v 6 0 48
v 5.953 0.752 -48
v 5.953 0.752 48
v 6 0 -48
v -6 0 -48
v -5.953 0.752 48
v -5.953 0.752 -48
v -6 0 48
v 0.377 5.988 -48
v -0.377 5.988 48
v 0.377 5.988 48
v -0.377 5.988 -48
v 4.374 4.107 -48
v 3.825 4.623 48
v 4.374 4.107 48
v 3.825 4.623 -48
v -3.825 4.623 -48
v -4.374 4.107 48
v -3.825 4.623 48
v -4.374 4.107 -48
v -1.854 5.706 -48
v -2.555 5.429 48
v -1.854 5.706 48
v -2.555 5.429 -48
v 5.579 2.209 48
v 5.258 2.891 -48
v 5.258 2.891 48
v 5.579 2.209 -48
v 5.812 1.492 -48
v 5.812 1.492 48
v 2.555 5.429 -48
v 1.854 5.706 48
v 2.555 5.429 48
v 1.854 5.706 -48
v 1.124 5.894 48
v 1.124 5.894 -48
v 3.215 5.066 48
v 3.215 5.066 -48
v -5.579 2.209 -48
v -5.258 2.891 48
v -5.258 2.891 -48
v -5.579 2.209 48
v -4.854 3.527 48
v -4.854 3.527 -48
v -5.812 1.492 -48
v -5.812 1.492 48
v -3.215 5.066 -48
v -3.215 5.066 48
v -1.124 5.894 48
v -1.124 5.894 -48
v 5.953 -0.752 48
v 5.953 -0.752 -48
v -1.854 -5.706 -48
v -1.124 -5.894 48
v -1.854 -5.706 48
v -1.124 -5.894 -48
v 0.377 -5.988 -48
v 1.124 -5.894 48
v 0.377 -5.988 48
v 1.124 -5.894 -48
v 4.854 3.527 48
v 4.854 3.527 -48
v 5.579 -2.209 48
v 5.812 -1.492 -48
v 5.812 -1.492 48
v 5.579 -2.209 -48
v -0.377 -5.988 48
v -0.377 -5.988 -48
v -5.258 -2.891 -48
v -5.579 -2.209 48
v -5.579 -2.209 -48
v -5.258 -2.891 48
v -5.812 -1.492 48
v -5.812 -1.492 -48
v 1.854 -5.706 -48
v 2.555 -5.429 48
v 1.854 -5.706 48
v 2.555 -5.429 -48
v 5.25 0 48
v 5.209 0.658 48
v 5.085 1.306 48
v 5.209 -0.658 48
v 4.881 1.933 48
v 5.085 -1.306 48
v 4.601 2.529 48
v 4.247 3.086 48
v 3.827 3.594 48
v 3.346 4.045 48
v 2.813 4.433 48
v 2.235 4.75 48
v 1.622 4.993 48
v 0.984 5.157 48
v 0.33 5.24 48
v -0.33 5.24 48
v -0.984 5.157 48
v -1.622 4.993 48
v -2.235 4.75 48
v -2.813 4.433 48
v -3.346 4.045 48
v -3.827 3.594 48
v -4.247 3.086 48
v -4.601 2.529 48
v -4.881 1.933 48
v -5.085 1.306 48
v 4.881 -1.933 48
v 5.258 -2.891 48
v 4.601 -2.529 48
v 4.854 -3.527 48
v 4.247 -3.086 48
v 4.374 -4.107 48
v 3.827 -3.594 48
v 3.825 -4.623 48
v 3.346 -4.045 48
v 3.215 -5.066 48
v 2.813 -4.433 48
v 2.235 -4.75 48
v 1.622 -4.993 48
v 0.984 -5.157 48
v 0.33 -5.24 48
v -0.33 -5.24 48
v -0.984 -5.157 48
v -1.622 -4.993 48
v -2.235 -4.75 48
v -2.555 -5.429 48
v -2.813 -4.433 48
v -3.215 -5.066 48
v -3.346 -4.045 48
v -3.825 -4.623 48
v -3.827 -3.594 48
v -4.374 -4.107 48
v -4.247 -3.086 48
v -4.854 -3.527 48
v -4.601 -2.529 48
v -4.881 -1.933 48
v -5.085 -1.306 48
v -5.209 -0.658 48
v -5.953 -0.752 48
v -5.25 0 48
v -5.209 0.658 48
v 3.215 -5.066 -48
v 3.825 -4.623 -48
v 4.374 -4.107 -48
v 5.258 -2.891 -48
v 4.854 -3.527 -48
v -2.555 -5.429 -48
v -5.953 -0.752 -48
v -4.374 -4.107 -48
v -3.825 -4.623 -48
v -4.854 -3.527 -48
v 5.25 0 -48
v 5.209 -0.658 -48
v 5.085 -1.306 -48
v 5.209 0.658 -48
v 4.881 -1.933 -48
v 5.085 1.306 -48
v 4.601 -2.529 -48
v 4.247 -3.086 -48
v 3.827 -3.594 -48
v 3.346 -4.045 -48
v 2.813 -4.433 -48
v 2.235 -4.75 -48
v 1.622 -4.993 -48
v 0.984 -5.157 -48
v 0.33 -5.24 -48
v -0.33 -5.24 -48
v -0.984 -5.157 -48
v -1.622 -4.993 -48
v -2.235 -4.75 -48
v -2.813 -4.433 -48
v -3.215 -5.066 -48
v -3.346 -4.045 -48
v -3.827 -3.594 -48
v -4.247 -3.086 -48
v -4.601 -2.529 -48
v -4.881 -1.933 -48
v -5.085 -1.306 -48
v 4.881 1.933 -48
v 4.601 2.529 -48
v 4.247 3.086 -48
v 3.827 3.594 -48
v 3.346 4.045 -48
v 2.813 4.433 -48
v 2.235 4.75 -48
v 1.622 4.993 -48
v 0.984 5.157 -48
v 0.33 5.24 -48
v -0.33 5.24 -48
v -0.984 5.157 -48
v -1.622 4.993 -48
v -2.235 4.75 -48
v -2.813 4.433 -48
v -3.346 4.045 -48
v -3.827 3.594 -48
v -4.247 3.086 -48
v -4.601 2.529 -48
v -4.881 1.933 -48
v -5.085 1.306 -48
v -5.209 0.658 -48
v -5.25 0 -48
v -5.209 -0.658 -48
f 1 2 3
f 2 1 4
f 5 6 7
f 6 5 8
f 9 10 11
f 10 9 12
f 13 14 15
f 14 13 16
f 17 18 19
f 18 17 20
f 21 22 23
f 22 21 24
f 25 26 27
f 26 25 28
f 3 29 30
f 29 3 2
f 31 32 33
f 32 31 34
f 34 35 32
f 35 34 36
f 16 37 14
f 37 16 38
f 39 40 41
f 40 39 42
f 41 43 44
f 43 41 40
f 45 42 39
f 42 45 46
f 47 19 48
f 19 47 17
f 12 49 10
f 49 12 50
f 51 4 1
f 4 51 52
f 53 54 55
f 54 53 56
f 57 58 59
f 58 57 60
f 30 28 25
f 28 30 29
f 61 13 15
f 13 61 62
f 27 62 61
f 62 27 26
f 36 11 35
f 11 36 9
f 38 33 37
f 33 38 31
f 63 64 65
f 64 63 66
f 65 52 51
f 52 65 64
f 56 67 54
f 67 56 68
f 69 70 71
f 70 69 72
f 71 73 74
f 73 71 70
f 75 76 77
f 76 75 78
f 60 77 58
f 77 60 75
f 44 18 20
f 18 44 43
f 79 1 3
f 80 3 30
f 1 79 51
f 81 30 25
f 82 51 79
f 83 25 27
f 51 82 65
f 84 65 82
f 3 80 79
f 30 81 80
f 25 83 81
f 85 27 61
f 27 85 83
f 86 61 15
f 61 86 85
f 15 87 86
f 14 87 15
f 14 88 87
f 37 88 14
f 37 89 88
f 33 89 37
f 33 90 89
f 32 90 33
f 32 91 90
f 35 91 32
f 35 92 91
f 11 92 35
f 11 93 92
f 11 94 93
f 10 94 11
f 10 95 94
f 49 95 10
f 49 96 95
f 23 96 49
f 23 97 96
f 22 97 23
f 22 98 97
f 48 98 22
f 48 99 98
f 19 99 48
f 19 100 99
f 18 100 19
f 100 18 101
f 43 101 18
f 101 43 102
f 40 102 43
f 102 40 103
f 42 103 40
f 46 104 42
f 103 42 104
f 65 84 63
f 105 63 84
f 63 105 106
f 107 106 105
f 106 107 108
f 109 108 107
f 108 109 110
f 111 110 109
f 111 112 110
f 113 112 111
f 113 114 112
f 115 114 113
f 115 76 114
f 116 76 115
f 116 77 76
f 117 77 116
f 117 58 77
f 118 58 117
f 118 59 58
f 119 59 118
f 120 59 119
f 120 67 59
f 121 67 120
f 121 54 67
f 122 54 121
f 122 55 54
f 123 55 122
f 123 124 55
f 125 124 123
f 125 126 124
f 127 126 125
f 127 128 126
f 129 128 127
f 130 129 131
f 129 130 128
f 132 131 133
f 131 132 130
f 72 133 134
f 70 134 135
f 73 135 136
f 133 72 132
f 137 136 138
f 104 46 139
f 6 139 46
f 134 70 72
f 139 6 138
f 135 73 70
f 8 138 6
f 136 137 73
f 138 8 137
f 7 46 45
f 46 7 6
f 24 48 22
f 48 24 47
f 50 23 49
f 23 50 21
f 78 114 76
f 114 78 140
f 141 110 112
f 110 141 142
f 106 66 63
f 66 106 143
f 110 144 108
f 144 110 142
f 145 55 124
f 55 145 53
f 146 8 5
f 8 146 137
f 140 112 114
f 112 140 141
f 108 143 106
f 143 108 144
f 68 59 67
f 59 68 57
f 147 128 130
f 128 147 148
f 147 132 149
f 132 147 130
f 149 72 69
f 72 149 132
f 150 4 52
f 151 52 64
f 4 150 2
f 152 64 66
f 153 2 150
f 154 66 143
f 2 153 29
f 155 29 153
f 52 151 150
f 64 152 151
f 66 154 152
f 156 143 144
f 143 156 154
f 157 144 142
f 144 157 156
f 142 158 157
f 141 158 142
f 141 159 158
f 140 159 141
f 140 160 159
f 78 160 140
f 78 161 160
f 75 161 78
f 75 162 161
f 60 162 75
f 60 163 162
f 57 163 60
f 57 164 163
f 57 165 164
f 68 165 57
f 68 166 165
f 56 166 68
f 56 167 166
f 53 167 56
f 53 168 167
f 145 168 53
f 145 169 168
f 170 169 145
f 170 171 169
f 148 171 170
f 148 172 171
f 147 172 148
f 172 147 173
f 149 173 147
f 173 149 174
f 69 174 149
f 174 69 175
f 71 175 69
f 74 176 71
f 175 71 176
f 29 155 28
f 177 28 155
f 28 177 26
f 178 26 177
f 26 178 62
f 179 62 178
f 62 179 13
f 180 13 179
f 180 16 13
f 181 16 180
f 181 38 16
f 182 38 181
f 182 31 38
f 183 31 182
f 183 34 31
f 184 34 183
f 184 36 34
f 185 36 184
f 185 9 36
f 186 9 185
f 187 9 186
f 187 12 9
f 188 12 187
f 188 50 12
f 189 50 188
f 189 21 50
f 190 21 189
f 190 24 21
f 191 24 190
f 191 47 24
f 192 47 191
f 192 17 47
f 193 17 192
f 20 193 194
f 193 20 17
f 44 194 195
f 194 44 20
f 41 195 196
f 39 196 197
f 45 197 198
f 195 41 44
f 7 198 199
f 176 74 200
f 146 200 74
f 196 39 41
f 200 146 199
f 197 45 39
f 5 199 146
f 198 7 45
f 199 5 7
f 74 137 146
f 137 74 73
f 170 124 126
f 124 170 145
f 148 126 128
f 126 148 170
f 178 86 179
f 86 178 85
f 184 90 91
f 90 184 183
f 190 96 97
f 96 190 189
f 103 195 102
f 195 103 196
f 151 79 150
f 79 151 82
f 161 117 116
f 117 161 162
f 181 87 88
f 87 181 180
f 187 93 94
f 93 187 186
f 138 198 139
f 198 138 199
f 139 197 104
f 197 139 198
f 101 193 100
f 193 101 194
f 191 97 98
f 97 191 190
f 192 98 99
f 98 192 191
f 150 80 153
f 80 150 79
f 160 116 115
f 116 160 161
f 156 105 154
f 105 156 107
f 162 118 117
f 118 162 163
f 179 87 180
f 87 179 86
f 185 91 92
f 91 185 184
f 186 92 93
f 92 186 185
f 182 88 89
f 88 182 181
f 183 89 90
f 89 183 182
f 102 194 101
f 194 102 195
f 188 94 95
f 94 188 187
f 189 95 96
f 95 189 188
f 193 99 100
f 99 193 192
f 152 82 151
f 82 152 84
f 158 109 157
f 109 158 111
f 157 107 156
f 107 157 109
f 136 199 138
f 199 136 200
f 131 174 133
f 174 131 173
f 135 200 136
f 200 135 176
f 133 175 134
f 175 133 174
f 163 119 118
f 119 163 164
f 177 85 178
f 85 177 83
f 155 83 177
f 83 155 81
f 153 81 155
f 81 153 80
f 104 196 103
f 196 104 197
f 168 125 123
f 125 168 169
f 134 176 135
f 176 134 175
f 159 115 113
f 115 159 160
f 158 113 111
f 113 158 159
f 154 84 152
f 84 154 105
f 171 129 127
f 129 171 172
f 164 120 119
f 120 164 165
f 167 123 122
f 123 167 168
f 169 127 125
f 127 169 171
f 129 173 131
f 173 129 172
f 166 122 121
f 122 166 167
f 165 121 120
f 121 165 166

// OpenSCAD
$fn = 50;


difference() {
	union() {
		translate(v = [0, 0, -48.0000000000]) {
			cylinder(h = 96, r = 6.0000000000);
		}
	}
	union() {
		translate(v = [0, 0, -100.0000000000]) {
			cylinder(h = 200, r = 5.2500000000);
		}
	}
}
